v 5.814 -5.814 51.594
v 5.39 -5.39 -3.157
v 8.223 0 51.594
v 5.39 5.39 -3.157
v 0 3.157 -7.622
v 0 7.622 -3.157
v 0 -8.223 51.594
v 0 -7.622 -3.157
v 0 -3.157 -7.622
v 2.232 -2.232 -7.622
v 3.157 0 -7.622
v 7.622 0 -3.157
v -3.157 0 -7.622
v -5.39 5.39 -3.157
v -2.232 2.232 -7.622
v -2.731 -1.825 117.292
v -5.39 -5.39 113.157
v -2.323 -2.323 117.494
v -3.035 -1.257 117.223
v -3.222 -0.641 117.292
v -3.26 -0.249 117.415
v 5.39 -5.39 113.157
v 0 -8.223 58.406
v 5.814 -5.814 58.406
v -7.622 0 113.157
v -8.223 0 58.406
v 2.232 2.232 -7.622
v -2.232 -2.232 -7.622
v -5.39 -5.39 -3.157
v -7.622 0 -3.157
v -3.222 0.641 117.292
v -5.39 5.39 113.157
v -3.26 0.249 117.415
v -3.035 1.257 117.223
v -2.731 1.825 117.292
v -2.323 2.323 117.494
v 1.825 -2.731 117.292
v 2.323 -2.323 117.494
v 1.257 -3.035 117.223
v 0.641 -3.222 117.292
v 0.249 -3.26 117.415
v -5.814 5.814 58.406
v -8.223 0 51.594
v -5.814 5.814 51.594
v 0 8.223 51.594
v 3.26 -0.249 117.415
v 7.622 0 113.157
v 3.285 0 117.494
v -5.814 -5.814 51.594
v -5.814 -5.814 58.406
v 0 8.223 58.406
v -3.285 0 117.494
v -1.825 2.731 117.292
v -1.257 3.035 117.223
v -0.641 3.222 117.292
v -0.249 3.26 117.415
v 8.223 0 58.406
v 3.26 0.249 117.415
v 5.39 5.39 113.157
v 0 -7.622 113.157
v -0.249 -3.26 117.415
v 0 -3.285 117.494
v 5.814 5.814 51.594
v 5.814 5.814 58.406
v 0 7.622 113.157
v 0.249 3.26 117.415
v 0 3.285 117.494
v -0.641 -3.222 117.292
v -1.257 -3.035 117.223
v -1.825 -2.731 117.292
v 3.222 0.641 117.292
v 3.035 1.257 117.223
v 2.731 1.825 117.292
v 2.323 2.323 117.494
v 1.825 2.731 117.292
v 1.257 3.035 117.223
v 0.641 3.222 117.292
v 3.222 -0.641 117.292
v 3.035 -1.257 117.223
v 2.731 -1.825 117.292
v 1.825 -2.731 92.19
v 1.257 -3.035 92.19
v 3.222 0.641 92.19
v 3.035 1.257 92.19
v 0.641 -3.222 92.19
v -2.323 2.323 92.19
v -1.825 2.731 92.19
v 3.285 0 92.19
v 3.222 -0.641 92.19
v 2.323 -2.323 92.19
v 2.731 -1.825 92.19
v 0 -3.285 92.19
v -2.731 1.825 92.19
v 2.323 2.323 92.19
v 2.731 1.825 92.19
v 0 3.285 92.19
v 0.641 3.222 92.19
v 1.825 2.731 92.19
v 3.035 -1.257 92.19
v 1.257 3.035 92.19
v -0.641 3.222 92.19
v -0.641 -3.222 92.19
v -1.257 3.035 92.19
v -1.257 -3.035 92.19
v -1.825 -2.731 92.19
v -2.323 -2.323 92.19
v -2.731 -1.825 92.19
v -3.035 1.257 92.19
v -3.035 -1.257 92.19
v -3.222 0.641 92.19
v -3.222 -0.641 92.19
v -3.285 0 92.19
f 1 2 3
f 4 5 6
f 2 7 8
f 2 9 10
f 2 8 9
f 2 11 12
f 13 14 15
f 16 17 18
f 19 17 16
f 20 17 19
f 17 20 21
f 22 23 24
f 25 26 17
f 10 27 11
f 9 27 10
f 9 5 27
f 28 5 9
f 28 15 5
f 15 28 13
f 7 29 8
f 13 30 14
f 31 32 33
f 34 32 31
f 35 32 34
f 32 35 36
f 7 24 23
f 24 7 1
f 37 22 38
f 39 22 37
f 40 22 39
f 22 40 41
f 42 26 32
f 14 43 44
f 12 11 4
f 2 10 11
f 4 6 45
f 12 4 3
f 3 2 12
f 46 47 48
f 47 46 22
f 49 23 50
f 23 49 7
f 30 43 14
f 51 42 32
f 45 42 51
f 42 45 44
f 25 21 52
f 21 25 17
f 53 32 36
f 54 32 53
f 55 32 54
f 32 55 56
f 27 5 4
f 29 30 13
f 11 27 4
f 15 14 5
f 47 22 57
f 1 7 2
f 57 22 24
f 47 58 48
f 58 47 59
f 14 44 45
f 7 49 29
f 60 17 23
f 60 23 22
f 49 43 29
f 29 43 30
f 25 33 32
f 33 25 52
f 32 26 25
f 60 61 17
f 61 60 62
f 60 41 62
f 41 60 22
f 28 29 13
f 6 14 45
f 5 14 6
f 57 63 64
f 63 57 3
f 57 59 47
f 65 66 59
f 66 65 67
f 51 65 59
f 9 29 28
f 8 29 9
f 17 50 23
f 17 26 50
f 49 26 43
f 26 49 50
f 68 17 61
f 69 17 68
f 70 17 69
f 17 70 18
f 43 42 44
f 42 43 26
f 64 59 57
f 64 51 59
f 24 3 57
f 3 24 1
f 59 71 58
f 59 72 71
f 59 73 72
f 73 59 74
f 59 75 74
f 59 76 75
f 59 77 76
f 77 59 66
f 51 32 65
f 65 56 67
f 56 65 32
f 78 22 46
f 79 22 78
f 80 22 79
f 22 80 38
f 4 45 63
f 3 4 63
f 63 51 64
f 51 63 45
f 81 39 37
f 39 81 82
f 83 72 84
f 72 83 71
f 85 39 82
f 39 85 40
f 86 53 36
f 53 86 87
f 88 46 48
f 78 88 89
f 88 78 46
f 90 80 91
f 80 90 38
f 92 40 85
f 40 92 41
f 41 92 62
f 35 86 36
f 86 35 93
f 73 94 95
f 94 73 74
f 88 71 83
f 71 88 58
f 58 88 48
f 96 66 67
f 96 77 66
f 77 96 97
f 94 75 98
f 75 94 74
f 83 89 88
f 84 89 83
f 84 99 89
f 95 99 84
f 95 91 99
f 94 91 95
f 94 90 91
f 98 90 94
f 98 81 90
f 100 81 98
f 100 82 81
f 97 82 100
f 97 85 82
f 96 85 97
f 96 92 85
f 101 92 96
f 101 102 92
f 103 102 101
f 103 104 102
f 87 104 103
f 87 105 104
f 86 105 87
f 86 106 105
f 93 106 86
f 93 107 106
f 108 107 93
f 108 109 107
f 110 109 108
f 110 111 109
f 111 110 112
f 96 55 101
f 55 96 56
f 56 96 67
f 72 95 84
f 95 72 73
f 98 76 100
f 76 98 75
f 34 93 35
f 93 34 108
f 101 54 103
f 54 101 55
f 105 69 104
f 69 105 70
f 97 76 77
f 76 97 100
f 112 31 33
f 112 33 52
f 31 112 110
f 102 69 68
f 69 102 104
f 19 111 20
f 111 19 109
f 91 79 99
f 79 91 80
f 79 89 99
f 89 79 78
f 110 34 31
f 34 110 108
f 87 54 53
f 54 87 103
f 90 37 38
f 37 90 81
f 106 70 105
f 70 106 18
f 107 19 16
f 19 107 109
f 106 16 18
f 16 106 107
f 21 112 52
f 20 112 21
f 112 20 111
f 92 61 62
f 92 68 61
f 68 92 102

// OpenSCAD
print_adjustment = 0.22;
mm_multiplier = 25.4;

handle_major_diameter = 17.8;
handle_minor_diameter1 = 16.5;
handle_length = 110;
ferrule_height = 8;
ferrule_diameter = 14;
rod_diameter = 1/4 * mm_multiplier + print_adjustment;
rod_length = 1 * mm_multiplier + print_adjustment;
rod_finetune = 5;

difference(){
    hull(){
        translate([0,0,handle_length / 2]){
            sphere(handle_major_diameter/2, $fn = 8);
        }
        translate([0,0,handle_length]){
            sphere(handle_minor_diameter1/2, $fn = 8);
        }
        translate([0,0,0]){
            sphere(handle_minor_diameter1/2, $fn = 8);
        }
    }
    translate([0,0,handle_length - rod_length / 2 - rod_finetune]){
        #cylinder( r = rod_diameter / 2, h = rod_length, $fn = 32);
    }
}
